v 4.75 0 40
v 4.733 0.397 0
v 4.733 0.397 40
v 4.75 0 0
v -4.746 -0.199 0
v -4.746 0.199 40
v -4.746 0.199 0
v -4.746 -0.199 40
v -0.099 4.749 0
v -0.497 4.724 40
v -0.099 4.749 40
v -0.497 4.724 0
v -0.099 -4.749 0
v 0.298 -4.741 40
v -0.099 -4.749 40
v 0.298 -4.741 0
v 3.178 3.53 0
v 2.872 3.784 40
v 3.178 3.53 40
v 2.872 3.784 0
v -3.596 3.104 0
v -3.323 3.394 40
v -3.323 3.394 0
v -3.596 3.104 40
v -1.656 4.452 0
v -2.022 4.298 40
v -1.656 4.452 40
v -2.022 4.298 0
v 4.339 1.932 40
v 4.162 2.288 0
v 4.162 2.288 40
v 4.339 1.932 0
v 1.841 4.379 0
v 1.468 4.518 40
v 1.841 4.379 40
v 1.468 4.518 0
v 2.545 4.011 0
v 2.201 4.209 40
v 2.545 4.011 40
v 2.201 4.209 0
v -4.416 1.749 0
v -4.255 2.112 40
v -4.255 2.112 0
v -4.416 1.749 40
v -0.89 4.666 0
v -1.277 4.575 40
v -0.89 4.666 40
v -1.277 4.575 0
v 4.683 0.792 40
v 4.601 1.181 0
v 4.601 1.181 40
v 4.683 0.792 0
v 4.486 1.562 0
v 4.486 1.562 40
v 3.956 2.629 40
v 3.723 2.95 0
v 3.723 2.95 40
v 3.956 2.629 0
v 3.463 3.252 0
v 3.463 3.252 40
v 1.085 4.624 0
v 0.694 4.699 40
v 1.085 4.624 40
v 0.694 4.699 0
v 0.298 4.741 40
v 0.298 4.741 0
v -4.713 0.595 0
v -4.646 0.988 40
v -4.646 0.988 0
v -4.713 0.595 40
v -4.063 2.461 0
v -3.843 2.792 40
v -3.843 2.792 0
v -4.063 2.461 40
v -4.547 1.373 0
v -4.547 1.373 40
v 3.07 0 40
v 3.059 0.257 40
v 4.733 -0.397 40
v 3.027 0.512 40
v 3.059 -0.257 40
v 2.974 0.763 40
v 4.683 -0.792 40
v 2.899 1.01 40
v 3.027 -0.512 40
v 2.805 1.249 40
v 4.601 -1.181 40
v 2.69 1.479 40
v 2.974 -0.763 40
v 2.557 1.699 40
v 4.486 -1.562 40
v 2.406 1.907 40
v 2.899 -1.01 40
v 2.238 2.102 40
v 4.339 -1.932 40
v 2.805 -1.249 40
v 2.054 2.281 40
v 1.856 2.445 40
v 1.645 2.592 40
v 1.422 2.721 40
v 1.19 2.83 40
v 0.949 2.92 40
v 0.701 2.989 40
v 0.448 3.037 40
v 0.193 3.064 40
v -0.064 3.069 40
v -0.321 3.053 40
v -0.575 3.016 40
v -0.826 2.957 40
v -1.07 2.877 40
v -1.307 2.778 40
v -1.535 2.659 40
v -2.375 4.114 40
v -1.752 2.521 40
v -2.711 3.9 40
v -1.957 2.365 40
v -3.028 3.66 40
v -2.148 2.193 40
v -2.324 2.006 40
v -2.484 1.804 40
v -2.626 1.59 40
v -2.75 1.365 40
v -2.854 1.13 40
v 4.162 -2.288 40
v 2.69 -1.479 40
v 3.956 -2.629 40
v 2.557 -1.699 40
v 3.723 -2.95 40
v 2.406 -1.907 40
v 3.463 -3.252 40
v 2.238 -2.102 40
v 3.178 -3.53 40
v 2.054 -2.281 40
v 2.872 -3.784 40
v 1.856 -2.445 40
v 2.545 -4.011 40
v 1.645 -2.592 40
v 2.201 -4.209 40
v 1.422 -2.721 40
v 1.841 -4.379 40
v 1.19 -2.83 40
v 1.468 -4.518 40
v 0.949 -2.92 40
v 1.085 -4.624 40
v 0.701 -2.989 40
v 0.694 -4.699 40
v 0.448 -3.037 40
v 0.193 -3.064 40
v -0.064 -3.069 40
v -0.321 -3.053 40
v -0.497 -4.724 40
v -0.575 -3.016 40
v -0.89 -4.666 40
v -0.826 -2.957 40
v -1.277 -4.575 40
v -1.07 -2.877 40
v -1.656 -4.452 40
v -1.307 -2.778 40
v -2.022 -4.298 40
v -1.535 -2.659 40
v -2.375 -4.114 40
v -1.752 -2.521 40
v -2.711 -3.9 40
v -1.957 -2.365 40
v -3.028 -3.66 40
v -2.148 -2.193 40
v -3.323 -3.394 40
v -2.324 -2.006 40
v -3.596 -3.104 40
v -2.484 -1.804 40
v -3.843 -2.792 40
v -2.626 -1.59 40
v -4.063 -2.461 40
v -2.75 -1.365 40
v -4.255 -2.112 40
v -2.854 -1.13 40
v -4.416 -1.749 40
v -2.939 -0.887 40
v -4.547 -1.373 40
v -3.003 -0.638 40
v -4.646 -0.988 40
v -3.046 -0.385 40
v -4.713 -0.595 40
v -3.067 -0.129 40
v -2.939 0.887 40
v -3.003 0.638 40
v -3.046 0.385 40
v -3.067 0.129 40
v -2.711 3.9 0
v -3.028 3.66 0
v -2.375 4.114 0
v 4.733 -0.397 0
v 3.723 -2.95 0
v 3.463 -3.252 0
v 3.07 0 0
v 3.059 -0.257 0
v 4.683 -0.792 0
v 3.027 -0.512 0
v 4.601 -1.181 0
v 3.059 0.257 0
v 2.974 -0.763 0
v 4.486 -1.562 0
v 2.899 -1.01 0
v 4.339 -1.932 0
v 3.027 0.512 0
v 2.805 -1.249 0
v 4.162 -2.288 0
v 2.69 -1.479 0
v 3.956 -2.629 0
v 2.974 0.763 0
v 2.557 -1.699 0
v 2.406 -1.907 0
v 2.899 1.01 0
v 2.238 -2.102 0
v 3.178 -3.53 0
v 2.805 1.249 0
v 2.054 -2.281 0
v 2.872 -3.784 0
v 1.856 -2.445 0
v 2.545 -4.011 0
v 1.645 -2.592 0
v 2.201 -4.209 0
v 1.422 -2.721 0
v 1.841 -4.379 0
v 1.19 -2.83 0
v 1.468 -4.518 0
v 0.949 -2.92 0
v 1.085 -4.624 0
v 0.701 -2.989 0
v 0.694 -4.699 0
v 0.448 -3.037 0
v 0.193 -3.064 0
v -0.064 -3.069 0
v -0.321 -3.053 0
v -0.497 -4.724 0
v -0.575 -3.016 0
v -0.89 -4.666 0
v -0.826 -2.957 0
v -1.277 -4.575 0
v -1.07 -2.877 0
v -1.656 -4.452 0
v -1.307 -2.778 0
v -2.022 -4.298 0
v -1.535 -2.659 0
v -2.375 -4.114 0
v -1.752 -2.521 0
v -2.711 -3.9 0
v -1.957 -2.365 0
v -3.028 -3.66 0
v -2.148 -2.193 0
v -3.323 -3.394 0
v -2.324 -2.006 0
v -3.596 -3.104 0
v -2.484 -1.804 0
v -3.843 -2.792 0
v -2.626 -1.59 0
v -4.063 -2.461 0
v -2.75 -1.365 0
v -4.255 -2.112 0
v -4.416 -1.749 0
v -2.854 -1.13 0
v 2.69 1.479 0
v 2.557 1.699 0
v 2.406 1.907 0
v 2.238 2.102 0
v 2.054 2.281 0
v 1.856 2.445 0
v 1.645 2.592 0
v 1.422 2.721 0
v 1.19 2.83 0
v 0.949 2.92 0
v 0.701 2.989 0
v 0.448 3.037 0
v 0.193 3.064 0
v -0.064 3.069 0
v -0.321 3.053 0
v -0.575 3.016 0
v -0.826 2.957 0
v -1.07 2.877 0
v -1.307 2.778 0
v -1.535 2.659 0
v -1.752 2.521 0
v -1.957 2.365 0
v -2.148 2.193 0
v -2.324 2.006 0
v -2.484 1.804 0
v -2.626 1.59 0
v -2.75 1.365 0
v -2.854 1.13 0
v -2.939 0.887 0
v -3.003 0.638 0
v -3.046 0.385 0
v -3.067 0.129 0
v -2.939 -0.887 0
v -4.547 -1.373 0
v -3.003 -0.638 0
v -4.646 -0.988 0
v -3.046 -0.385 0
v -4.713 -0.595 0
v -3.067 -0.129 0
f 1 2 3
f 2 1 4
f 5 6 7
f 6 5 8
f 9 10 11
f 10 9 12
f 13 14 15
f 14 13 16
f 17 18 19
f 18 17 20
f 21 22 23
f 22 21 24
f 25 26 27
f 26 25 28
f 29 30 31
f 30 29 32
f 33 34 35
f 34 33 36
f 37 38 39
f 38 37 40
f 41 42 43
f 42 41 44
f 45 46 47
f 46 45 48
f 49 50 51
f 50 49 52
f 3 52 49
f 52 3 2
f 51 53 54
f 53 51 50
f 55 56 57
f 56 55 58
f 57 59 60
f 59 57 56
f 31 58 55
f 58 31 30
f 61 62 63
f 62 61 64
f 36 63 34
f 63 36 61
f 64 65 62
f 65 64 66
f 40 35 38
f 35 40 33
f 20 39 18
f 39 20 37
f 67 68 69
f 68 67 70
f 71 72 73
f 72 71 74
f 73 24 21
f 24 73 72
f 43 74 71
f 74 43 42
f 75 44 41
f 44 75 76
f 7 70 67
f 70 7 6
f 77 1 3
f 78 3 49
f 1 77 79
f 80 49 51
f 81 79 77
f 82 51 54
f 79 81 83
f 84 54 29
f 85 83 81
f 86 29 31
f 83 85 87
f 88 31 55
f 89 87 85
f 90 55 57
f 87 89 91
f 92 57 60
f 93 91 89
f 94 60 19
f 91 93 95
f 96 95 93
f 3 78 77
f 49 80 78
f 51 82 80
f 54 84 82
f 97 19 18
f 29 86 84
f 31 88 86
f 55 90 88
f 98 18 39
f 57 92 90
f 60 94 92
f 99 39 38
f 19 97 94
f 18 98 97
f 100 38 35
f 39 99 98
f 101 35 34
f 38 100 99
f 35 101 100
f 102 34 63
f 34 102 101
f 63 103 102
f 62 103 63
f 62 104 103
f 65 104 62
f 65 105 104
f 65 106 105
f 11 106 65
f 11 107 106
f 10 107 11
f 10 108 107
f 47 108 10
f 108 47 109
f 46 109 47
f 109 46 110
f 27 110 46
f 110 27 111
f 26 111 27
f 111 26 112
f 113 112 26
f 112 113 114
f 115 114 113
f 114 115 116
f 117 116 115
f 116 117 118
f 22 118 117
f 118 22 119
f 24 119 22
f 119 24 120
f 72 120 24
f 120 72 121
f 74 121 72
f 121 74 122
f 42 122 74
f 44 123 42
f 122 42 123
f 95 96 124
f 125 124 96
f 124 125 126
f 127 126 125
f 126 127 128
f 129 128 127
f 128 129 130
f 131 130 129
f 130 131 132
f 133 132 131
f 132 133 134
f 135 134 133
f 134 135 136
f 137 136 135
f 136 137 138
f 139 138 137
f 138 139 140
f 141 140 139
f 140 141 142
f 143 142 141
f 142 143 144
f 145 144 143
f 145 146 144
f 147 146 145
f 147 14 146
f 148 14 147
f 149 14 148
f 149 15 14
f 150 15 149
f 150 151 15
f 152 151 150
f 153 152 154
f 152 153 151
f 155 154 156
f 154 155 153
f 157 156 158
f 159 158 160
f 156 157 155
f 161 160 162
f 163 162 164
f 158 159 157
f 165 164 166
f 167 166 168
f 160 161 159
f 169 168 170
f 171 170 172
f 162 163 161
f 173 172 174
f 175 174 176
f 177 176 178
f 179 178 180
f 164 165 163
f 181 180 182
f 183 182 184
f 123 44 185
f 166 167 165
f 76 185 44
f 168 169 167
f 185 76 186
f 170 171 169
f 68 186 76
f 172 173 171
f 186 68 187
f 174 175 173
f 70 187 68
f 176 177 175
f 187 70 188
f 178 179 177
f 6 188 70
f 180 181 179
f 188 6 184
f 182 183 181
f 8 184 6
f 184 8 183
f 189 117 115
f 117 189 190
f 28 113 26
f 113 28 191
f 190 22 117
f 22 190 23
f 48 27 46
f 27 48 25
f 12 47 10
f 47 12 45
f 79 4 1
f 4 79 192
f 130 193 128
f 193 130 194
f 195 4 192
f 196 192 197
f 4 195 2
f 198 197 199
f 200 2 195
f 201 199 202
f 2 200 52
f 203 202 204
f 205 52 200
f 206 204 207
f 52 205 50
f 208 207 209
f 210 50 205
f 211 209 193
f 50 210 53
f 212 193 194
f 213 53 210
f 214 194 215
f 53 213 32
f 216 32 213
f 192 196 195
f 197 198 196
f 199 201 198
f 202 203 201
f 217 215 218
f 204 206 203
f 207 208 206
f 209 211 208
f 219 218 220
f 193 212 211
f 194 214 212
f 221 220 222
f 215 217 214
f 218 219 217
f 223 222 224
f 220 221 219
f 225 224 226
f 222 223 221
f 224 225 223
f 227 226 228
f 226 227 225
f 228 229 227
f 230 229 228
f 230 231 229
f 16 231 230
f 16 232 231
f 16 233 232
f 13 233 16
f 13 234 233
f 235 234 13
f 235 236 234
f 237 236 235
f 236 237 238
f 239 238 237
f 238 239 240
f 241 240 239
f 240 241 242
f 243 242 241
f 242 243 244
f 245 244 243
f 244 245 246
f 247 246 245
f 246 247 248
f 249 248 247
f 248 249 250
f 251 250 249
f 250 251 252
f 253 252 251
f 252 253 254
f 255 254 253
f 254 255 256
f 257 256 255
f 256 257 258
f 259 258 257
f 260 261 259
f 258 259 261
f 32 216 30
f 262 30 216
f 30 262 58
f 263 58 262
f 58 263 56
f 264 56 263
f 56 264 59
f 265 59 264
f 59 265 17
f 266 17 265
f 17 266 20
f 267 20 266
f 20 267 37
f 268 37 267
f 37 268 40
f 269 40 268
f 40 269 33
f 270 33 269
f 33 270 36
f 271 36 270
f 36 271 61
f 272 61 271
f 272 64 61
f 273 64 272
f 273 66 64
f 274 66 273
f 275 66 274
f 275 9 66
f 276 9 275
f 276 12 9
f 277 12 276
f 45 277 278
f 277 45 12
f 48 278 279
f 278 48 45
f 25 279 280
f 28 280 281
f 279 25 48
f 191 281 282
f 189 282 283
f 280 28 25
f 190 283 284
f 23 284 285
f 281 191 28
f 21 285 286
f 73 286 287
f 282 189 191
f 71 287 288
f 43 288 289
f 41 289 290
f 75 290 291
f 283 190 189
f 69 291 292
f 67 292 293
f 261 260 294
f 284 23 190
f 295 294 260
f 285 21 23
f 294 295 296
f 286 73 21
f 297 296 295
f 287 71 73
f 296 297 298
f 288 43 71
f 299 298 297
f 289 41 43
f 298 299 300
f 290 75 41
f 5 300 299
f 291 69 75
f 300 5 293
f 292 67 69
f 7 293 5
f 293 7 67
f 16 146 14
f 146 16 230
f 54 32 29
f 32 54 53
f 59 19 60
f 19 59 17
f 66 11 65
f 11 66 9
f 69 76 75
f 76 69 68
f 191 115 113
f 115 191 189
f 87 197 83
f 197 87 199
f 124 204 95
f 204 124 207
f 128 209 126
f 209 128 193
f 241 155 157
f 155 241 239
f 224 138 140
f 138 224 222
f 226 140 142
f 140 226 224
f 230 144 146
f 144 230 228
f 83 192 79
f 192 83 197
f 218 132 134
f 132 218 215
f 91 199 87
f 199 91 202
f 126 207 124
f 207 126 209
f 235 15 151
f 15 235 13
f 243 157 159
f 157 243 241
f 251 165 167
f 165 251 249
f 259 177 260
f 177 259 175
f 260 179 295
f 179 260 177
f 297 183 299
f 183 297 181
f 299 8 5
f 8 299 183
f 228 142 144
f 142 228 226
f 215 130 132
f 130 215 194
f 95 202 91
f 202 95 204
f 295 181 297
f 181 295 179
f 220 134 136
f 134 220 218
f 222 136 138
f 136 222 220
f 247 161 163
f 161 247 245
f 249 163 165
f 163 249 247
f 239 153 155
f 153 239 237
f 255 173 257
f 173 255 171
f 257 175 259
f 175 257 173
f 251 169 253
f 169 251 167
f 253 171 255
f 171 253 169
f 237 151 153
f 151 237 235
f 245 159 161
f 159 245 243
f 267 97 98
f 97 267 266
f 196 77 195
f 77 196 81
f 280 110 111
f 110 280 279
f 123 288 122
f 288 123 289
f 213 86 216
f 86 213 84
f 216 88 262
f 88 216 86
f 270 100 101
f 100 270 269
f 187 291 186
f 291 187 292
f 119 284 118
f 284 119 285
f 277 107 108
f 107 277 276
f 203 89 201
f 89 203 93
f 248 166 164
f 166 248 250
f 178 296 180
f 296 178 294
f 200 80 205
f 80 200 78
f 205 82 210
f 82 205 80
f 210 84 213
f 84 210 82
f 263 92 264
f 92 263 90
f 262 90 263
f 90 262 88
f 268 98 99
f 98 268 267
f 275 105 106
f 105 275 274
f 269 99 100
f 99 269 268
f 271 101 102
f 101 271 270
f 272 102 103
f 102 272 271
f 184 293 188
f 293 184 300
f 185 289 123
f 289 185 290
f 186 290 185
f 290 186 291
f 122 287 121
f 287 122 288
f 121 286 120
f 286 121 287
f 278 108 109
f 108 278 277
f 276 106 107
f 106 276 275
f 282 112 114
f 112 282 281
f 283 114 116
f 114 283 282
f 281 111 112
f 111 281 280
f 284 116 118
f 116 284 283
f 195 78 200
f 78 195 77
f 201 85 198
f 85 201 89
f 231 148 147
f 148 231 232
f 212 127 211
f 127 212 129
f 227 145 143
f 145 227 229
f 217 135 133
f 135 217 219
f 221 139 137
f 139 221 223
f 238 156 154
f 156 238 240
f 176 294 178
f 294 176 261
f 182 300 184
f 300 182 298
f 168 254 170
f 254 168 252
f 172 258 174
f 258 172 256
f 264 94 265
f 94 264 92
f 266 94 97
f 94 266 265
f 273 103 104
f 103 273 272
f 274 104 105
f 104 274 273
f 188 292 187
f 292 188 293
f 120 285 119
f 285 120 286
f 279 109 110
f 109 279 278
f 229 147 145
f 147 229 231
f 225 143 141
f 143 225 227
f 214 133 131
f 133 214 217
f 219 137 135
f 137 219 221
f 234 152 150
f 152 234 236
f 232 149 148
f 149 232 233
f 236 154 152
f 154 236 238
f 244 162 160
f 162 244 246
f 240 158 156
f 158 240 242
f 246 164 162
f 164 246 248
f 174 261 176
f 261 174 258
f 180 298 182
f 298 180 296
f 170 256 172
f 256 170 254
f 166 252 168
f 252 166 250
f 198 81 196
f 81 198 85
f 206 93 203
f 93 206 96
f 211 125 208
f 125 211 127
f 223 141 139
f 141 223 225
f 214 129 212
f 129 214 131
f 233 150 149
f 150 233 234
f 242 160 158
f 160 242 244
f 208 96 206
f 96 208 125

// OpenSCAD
// file: settings.scad
// Created by Phisik on 2018-12-16
// Main settings header for peristaltic pump

// Licence GPL

// some extra gap for clean difference render in preview
eps = 0.1;

// Part smoothness, the more the better
$fn = 100;

layer_height = 0.25;

// Silicon hose settings
//====================================================================================

// NB! The larger the hose radius the higher torque is required
r_hose = 22;        // radius of hose center line
                    // Update: after addition of groove hose center is at r_hose + hose_groove
d_hose = 9;         // hose external diameter

hose_wall = 1.5;   // hose wall thickness
					// NB! hose_wall affects both stator & rotor geometry
					
hose_clearance = 0.2;   // extra clearance between hose & bearings
						// NB! hose_clearance affects only rotor geometry
						// If you experience lack of suction reduce hose_clearance 
						// If motor misses steps increase hose_clearance, take motor with higher 
						// torque or hose with thinner wall

hose_fitting_delta_d = 1; // difference between hose and hose fitting diameter
						
						
// Stator settings
//====================================================================================
wall = 4;             // wall thickness, should be larger than hose_groove by 1mm or more
hose_groove = 0;     // NB! Rudiment form v1. Do not change. 
					 // groove depth for hose to stay in place 

h_base = 4.75;             // height of stator base
h_support_base = 2;		// height of support base

stator_support_gap = 1;		// gap between support & stator base for spring tension

stator_facet = 10;   // facets of outer support corners

mount_width  = 8;
mount_length = 10;

d_screw = 3.5;           // screw diameter
d_nut = 6.5;             // nut & screw head diameter
d_nut_tight = 5.5/0.87; // nut diameter for nuts to be fitted with soldering iron

l_handle = 10;

r_water_sink = 5.5;

need_nut_cuts_in_support = 0; // cut holes for nuts in support
need_nut_cuts_in_stator  = 1; // cut holes for support nut in stator

hose_fixator_length = 15;  // length of hose inset for fixing it on the stator


// Bearing settings
//====================================================================================
bearingNum = 3;     // Number of bearings per arm

h_bearing = 5;      // bearing height
d_bearing = 14;     // OD
d_bearing_axis = 5;         // ID
w_axis = 1;         // thickness of inner bushing



// Rotor settings
//==================================================================================== 
d_rotor = 17.5;   // Outer rotor diameter

arm_num = 3;    // number of rotor arms
w_arm  = 15;    // arm width
h_arm = 3;      // arm height

enable_hose_guides = 1;
w_hose_guide = 8;
hose_guide_clearance = 0.75;
r_hose_guide_facet = 2;

gap = 0.2;      // some clearance between joins & moving parts

arm_clearance = 4;  // clearance between arm and stator

bearing_axes_clearance = 0.075;  	     // clearance on rotor base between bearings and axes
rotor_bearing_axes_clearance = 0.45;  // clearance on rotor cap between axes and holes
bearing_clearance = 1; 				 // distance from stator base to the lowest arms

// 1602 lcd settings
//====================================================================================
y_lcd_hole = 31;
x_lcd_hole = 75;
d_lcd_hole = 3;

l_lcd_plate = 80;
w_lcd_plate = 36.11;
h_lcd_plate = 1.6;

l_lcd = 71.5;
w_lcd = 24.5;
h_lcd = 8.75;

x_lcd_shift = -0.1;
y_lcd_shift = +0.75;

l_lcd_i2c = 42;
w_lcd_i2c = 19;
h_lcd_i2c = 1.5;


// Nema 17 settings
//====================================================================================
nema_screw_distance = 31;  
nema_shaft_diameter = 5.5;
nema_shaft_height = 25;
nema_knob_diameter = 23;
nema_knob_height = 2.5;
nema_width = 42.3;
nema_angle_cut = 4;
// main file
include <settings.scad>

$fn = 75;

// Length
h=40;

//Radius
r=9.5/2; 

//wall thickness
th=0.42*4; 

difference(){
    cylinder(r=r, h=h);
    cylinder(r=r-th, h=h);
}
